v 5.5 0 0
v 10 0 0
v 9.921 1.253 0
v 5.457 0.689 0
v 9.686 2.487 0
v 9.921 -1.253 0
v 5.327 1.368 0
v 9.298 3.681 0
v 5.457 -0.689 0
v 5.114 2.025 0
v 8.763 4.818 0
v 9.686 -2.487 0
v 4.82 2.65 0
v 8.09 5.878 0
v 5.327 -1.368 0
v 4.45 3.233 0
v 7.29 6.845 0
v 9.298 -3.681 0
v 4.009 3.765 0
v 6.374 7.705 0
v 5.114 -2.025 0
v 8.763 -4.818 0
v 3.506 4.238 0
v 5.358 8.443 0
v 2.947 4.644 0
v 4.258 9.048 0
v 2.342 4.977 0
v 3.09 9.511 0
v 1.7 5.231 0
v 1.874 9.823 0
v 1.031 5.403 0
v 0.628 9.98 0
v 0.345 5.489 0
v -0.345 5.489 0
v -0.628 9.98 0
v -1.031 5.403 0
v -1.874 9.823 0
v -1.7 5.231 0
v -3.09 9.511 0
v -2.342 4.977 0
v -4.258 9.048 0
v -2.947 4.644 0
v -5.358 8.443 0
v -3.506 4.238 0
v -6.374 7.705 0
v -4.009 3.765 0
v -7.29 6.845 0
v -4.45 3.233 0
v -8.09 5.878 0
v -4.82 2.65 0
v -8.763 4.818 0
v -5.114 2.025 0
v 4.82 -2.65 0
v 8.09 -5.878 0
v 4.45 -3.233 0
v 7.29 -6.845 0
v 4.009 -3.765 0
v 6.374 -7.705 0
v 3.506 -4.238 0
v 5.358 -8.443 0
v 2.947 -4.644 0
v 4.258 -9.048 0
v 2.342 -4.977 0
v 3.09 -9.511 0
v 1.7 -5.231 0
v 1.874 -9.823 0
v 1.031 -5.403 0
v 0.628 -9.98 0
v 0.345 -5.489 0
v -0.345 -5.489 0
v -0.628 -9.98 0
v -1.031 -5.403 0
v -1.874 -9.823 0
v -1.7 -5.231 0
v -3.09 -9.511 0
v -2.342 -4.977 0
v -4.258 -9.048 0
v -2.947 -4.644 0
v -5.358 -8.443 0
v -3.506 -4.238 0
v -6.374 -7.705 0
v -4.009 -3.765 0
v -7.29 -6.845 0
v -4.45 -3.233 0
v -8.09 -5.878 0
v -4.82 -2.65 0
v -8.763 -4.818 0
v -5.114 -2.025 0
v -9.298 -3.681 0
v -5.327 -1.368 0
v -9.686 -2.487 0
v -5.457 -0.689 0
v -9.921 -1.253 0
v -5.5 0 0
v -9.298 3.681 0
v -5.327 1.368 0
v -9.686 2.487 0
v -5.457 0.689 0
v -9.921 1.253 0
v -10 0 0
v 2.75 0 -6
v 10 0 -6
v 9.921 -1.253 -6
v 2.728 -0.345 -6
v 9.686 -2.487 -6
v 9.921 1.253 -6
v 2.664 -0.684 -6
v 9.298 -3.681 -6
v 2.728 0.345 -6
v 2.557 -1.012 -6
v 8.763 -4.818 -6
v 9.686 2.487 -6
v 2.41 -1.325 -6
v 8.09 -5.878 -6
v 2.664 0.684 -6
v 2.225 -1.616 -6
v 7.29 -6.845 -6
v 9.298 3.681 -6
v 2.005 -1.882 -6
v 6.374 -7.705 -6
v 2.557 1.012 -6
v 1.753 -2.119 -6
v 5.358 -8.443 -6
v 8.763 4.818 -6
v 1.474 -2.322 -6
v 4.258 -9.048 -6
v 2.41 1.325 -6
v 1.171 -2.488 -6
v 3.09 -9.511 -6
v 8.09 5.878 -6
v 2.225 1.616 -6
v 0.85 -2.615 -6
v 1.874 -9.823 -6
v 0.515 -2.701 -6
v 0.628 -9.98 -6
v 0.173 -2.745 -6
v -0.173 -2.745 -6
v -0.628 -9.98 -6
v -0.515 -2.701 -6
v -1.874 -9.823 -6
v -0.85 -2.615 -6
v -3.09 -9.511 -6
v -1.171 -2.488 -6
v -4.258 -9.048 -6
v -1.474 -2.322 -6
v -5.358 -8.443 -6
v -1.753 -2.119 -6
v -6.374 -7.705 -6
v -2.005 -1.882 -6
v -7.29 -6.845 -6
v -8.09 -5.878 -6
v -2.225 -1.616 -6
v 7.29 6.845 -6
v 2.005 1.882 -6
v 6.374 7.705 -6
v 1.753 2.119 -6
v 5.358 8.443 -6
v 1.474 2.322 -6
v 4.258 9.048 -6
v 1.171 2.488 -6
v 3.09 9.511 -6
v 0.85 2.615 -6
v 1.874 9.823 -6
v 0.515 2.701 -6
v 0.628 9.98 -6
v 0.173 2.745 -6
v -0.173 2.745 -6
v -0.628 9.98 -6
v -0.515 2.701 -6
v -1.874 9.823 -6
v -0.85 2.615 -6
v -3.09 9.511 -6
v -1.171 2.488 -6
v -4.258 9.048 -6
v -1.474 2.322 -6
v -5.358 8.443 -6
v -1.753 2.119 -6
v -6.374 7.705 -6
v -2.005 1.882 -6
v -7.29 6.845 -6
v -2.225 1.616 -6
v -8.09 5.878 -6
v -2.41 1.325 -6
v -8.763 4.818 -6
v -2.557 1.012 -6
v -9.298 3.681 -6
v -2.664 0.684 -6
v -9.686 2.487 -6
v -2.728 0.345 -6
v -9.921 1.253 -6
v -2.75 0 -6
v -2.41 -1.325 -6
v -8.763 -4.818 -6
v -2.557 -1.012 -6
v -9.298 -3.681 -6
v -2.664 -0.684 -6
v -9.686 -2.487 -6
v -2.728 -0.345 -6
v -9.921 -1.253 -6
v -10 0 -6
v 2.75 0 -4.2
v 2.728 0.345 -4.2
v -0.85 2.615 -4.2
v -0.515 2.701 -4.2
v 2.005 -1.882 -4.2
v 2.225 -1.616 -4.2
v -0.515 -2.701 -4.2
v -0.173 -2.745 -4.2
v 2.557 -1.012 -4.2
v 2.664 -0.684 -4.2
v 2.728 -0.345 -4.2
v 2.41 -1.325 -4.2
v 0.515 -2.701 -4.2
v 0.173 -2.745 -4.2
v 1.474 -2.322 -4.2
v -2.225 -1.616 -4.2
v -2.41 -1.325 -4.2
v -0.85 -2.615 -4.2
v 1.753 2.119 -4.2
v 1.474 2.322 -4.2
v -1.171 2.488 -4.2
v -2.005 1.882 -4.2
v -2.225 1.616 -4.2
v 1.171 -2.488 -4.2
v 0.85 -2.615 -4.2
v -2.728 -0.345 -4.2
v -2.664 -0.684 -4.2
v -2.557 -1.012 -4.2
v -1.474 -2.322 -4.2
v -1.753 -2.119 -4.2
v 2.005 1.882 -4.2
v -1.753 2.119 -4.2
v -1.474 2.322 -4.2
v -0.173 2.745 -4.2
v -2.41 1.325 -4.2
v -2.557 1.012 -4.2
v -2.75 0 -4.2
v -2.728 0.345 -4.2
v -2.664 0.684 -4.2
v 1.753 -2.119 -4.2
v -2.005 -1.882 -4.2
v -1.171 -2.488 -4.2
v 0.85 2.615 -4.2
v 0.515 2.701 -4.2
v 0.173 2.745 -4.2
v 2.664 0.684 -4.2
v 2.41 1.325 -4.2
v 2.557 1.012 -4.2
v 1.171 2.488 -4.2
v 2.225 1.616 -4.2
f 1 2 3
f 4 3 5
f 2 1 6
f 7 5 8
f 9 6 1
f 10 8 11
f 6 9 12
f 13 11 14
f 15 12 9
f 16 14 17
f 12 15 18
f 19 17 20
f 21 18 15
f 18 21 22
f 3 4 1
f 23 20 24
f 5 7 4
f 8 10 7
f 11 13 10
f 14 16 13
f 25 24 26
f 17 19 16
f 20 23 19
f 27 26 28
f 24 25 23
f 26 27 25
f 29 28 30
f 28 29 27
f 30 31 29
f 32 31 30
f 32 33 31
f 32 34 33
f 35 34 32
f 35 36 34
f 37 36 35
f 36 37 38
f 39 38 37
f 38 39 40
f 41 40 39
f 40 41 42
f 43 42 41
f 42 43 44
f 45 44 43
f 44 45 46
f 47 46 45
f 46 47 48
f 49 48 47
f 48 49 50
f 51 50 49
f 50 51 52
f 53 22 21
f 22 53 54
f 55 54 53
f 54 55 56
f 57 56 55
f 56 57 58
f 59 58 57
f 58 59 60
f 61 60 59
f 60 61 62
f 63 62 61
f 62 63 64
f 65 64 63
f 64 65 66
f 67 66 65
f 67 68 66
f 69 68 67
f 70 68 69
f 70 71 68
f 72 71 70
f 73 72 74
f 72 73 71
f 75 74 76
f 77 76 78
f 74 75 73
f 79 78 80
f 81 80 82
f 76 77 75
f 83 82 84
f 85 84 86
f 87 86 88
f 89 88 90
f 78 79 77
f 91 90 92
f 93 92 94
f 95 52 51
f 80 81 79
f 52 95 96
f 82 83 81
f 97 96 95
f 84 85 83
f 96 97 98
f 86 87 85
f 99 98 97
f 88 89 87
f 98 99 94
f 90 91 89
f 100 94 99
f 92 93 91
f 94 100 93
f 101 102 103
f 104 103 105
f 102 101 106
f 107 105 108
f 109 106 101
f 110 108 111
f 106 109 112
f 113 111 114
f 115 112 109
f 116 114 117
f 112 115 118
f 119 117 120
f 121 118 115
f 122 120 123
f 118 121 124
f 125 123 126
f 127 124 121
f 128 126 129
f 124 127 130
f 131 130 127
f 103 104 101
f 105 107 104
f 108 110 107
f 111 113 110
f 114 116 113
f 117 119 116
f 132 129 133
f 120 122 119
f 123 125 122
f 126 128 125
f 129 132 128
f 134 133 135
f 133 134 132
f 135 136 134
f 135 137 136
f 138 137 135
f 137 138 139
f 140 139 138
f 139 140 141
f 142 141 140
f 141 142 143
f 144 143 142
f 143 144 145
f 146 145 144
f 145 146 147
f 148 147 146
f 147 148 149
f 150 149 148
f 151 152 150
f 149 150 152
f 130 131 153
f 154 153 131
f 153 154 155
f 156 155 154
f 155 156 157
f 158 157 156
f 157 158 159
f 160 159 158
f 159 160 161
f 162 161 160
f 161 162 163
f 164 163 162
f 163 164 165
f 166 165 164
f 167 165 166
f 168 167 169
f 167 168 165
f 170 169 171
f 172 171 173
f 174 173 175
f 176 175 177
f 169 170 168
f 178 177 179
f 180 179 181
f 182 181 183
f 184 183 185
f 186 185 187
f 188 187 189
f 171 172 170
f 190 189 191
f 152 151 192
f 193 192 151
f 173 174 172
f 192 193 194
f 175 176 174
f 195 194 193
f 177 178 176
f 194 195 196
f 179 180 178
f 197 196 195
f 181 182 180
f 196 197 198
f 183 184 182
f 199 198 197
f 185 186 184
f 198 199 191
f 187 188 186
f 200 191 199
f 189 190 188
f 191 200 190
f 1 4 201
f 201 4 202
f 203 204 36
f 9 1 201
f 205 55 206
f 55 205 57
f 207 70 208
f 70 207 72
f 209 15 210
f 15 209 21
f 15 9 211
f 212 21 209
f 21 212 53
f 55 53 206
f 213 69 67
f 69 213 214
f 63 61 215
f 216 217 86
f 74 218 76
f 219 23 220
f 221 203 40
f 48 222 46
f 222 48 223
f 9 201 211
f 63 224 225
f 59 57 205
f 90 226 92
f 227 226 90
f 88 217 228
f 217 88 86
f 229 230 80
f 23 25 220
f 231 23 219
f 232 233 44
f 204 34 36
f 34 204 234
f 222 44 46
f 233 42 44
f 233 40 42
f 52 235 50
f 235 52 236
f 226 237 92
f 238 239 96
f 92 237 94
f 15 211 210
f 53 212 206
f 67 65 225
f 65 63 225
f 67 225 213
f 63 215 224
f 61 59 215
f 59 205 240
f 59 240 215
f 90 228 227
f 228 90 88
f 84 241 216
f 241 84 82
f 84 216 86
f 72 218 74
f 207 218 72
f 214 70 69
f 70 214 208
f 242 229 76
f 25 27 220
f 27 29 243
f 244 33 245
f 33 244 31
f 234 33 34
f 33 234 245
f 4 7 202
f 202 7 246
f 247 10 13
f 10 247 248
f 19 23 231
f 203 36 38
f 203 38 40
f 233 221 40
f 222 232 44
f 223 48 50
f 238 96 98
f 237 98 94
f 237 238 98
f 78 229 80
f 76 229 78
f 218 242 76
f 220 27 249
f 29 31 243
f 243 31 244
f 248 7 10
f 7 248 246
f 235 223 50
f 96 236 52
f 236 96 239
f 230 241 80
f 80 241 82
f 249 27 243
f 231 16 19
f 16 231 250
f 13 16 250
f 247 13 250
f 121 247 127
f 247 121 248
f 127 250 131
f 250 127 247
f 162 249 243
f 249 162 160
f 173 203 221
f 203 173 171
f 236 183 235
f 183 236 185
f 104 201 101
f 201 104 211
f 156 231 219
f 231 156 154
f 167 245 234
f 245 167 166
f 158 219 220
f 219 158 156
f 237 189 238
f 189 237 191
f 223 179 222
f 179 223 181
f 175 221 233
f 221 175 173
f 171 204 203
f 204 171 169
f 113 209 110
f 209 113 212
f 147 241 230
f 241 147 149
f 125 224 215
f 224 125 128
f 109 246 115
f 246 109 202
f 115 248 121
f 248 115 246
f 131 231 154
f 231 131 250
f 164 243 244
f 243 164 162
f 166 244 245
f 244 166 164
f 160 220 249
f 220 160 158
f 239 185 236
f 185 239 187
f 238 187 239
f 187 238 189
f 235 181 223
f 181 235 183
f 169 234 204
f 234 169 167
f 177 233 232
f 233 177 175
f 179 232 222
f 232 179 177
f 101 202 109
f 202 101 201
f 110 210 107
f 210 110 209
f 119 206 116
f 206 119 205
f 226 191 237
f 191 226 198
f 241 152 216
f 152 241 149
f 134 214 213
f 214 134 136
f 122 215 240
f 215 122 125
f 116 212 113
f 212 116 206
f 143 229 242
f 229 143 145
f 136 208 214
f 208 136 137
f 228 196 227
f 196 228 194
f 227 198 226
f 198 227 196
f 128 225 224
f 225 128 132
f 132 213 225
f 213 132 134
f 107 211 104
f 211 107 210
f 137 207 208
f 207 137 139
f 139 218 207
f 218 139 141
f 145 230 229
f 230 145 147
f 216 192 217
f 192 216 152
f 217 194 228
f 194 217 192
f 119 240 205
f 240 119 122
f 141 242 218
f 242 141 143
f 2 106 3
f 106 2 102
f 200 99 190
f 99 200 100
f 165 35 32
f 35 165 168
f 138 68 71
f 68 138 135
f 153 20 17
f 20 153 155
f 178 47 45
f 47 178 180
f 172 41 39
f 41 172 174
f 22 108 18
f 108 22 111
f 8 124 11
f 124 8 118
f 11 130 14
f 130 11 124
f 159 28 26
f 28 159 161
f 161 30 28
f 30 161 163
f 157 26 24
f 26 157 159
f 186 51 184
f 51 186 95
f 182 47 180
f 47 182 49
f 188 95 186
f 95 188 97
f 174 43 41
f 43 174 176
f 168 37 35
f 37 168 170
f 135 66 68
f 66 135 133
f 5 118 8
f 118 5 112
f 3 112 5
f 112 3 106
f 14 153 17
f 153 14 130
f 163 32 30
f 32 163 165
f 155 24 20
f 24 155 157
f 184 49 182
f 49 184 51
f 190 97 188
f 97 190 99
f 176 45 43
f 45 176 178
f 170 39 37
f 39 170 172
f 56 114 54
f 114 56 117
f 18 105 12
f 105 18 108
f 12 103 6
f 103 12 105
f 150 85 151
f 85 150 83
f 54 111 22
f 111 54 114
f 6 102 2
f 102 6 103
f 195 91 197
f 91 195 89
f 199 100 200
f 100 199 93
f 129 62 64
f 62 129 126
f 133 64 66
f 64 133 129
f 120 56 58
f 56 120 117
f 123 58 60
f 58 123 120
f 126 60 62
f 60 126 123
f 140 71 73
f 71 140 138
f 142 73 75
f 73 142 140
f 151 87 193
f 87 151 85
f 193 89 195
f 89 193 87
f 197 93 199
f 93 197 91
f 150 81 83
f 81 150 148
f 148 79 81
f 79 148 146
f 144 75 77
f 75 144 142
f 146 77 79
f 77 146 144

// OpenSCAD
$fn = 50;


difference() {
	union() {
		translate(v = [0, 0, -6.0000000000]) {
			cylinder(h = 6, r = 10.0000000000);
		}
		cylinder(h = 0, r = 16.0000000000);
	}
	union() {
		translate(v = [0, 0, 0]) {
			rotate(a = [0, 0, 0]) {
				difference() {
					union() {
						#translate(v = [0, 0, -6.0000000000]) {
							cylinder(h = 6, r = 2.2500000000);
						}
						#translate(v = [0, 0, -4.2000000000]) {
							cylinder(h = 4.2000000000, r1 = 2.7500000000, r2 = 5.5000000000);
						}
						#translate(v = [0, 0, -6.0000000000]) {
							cylinder(h = 6, r = 2.7500000000);
						}
						#translate(v = [0, 0, -6.0000000000]) {
							cylinder(h = 6, r = 2.2500000000);
						}
					}
					union();
				}
			}
		}
	}
}
